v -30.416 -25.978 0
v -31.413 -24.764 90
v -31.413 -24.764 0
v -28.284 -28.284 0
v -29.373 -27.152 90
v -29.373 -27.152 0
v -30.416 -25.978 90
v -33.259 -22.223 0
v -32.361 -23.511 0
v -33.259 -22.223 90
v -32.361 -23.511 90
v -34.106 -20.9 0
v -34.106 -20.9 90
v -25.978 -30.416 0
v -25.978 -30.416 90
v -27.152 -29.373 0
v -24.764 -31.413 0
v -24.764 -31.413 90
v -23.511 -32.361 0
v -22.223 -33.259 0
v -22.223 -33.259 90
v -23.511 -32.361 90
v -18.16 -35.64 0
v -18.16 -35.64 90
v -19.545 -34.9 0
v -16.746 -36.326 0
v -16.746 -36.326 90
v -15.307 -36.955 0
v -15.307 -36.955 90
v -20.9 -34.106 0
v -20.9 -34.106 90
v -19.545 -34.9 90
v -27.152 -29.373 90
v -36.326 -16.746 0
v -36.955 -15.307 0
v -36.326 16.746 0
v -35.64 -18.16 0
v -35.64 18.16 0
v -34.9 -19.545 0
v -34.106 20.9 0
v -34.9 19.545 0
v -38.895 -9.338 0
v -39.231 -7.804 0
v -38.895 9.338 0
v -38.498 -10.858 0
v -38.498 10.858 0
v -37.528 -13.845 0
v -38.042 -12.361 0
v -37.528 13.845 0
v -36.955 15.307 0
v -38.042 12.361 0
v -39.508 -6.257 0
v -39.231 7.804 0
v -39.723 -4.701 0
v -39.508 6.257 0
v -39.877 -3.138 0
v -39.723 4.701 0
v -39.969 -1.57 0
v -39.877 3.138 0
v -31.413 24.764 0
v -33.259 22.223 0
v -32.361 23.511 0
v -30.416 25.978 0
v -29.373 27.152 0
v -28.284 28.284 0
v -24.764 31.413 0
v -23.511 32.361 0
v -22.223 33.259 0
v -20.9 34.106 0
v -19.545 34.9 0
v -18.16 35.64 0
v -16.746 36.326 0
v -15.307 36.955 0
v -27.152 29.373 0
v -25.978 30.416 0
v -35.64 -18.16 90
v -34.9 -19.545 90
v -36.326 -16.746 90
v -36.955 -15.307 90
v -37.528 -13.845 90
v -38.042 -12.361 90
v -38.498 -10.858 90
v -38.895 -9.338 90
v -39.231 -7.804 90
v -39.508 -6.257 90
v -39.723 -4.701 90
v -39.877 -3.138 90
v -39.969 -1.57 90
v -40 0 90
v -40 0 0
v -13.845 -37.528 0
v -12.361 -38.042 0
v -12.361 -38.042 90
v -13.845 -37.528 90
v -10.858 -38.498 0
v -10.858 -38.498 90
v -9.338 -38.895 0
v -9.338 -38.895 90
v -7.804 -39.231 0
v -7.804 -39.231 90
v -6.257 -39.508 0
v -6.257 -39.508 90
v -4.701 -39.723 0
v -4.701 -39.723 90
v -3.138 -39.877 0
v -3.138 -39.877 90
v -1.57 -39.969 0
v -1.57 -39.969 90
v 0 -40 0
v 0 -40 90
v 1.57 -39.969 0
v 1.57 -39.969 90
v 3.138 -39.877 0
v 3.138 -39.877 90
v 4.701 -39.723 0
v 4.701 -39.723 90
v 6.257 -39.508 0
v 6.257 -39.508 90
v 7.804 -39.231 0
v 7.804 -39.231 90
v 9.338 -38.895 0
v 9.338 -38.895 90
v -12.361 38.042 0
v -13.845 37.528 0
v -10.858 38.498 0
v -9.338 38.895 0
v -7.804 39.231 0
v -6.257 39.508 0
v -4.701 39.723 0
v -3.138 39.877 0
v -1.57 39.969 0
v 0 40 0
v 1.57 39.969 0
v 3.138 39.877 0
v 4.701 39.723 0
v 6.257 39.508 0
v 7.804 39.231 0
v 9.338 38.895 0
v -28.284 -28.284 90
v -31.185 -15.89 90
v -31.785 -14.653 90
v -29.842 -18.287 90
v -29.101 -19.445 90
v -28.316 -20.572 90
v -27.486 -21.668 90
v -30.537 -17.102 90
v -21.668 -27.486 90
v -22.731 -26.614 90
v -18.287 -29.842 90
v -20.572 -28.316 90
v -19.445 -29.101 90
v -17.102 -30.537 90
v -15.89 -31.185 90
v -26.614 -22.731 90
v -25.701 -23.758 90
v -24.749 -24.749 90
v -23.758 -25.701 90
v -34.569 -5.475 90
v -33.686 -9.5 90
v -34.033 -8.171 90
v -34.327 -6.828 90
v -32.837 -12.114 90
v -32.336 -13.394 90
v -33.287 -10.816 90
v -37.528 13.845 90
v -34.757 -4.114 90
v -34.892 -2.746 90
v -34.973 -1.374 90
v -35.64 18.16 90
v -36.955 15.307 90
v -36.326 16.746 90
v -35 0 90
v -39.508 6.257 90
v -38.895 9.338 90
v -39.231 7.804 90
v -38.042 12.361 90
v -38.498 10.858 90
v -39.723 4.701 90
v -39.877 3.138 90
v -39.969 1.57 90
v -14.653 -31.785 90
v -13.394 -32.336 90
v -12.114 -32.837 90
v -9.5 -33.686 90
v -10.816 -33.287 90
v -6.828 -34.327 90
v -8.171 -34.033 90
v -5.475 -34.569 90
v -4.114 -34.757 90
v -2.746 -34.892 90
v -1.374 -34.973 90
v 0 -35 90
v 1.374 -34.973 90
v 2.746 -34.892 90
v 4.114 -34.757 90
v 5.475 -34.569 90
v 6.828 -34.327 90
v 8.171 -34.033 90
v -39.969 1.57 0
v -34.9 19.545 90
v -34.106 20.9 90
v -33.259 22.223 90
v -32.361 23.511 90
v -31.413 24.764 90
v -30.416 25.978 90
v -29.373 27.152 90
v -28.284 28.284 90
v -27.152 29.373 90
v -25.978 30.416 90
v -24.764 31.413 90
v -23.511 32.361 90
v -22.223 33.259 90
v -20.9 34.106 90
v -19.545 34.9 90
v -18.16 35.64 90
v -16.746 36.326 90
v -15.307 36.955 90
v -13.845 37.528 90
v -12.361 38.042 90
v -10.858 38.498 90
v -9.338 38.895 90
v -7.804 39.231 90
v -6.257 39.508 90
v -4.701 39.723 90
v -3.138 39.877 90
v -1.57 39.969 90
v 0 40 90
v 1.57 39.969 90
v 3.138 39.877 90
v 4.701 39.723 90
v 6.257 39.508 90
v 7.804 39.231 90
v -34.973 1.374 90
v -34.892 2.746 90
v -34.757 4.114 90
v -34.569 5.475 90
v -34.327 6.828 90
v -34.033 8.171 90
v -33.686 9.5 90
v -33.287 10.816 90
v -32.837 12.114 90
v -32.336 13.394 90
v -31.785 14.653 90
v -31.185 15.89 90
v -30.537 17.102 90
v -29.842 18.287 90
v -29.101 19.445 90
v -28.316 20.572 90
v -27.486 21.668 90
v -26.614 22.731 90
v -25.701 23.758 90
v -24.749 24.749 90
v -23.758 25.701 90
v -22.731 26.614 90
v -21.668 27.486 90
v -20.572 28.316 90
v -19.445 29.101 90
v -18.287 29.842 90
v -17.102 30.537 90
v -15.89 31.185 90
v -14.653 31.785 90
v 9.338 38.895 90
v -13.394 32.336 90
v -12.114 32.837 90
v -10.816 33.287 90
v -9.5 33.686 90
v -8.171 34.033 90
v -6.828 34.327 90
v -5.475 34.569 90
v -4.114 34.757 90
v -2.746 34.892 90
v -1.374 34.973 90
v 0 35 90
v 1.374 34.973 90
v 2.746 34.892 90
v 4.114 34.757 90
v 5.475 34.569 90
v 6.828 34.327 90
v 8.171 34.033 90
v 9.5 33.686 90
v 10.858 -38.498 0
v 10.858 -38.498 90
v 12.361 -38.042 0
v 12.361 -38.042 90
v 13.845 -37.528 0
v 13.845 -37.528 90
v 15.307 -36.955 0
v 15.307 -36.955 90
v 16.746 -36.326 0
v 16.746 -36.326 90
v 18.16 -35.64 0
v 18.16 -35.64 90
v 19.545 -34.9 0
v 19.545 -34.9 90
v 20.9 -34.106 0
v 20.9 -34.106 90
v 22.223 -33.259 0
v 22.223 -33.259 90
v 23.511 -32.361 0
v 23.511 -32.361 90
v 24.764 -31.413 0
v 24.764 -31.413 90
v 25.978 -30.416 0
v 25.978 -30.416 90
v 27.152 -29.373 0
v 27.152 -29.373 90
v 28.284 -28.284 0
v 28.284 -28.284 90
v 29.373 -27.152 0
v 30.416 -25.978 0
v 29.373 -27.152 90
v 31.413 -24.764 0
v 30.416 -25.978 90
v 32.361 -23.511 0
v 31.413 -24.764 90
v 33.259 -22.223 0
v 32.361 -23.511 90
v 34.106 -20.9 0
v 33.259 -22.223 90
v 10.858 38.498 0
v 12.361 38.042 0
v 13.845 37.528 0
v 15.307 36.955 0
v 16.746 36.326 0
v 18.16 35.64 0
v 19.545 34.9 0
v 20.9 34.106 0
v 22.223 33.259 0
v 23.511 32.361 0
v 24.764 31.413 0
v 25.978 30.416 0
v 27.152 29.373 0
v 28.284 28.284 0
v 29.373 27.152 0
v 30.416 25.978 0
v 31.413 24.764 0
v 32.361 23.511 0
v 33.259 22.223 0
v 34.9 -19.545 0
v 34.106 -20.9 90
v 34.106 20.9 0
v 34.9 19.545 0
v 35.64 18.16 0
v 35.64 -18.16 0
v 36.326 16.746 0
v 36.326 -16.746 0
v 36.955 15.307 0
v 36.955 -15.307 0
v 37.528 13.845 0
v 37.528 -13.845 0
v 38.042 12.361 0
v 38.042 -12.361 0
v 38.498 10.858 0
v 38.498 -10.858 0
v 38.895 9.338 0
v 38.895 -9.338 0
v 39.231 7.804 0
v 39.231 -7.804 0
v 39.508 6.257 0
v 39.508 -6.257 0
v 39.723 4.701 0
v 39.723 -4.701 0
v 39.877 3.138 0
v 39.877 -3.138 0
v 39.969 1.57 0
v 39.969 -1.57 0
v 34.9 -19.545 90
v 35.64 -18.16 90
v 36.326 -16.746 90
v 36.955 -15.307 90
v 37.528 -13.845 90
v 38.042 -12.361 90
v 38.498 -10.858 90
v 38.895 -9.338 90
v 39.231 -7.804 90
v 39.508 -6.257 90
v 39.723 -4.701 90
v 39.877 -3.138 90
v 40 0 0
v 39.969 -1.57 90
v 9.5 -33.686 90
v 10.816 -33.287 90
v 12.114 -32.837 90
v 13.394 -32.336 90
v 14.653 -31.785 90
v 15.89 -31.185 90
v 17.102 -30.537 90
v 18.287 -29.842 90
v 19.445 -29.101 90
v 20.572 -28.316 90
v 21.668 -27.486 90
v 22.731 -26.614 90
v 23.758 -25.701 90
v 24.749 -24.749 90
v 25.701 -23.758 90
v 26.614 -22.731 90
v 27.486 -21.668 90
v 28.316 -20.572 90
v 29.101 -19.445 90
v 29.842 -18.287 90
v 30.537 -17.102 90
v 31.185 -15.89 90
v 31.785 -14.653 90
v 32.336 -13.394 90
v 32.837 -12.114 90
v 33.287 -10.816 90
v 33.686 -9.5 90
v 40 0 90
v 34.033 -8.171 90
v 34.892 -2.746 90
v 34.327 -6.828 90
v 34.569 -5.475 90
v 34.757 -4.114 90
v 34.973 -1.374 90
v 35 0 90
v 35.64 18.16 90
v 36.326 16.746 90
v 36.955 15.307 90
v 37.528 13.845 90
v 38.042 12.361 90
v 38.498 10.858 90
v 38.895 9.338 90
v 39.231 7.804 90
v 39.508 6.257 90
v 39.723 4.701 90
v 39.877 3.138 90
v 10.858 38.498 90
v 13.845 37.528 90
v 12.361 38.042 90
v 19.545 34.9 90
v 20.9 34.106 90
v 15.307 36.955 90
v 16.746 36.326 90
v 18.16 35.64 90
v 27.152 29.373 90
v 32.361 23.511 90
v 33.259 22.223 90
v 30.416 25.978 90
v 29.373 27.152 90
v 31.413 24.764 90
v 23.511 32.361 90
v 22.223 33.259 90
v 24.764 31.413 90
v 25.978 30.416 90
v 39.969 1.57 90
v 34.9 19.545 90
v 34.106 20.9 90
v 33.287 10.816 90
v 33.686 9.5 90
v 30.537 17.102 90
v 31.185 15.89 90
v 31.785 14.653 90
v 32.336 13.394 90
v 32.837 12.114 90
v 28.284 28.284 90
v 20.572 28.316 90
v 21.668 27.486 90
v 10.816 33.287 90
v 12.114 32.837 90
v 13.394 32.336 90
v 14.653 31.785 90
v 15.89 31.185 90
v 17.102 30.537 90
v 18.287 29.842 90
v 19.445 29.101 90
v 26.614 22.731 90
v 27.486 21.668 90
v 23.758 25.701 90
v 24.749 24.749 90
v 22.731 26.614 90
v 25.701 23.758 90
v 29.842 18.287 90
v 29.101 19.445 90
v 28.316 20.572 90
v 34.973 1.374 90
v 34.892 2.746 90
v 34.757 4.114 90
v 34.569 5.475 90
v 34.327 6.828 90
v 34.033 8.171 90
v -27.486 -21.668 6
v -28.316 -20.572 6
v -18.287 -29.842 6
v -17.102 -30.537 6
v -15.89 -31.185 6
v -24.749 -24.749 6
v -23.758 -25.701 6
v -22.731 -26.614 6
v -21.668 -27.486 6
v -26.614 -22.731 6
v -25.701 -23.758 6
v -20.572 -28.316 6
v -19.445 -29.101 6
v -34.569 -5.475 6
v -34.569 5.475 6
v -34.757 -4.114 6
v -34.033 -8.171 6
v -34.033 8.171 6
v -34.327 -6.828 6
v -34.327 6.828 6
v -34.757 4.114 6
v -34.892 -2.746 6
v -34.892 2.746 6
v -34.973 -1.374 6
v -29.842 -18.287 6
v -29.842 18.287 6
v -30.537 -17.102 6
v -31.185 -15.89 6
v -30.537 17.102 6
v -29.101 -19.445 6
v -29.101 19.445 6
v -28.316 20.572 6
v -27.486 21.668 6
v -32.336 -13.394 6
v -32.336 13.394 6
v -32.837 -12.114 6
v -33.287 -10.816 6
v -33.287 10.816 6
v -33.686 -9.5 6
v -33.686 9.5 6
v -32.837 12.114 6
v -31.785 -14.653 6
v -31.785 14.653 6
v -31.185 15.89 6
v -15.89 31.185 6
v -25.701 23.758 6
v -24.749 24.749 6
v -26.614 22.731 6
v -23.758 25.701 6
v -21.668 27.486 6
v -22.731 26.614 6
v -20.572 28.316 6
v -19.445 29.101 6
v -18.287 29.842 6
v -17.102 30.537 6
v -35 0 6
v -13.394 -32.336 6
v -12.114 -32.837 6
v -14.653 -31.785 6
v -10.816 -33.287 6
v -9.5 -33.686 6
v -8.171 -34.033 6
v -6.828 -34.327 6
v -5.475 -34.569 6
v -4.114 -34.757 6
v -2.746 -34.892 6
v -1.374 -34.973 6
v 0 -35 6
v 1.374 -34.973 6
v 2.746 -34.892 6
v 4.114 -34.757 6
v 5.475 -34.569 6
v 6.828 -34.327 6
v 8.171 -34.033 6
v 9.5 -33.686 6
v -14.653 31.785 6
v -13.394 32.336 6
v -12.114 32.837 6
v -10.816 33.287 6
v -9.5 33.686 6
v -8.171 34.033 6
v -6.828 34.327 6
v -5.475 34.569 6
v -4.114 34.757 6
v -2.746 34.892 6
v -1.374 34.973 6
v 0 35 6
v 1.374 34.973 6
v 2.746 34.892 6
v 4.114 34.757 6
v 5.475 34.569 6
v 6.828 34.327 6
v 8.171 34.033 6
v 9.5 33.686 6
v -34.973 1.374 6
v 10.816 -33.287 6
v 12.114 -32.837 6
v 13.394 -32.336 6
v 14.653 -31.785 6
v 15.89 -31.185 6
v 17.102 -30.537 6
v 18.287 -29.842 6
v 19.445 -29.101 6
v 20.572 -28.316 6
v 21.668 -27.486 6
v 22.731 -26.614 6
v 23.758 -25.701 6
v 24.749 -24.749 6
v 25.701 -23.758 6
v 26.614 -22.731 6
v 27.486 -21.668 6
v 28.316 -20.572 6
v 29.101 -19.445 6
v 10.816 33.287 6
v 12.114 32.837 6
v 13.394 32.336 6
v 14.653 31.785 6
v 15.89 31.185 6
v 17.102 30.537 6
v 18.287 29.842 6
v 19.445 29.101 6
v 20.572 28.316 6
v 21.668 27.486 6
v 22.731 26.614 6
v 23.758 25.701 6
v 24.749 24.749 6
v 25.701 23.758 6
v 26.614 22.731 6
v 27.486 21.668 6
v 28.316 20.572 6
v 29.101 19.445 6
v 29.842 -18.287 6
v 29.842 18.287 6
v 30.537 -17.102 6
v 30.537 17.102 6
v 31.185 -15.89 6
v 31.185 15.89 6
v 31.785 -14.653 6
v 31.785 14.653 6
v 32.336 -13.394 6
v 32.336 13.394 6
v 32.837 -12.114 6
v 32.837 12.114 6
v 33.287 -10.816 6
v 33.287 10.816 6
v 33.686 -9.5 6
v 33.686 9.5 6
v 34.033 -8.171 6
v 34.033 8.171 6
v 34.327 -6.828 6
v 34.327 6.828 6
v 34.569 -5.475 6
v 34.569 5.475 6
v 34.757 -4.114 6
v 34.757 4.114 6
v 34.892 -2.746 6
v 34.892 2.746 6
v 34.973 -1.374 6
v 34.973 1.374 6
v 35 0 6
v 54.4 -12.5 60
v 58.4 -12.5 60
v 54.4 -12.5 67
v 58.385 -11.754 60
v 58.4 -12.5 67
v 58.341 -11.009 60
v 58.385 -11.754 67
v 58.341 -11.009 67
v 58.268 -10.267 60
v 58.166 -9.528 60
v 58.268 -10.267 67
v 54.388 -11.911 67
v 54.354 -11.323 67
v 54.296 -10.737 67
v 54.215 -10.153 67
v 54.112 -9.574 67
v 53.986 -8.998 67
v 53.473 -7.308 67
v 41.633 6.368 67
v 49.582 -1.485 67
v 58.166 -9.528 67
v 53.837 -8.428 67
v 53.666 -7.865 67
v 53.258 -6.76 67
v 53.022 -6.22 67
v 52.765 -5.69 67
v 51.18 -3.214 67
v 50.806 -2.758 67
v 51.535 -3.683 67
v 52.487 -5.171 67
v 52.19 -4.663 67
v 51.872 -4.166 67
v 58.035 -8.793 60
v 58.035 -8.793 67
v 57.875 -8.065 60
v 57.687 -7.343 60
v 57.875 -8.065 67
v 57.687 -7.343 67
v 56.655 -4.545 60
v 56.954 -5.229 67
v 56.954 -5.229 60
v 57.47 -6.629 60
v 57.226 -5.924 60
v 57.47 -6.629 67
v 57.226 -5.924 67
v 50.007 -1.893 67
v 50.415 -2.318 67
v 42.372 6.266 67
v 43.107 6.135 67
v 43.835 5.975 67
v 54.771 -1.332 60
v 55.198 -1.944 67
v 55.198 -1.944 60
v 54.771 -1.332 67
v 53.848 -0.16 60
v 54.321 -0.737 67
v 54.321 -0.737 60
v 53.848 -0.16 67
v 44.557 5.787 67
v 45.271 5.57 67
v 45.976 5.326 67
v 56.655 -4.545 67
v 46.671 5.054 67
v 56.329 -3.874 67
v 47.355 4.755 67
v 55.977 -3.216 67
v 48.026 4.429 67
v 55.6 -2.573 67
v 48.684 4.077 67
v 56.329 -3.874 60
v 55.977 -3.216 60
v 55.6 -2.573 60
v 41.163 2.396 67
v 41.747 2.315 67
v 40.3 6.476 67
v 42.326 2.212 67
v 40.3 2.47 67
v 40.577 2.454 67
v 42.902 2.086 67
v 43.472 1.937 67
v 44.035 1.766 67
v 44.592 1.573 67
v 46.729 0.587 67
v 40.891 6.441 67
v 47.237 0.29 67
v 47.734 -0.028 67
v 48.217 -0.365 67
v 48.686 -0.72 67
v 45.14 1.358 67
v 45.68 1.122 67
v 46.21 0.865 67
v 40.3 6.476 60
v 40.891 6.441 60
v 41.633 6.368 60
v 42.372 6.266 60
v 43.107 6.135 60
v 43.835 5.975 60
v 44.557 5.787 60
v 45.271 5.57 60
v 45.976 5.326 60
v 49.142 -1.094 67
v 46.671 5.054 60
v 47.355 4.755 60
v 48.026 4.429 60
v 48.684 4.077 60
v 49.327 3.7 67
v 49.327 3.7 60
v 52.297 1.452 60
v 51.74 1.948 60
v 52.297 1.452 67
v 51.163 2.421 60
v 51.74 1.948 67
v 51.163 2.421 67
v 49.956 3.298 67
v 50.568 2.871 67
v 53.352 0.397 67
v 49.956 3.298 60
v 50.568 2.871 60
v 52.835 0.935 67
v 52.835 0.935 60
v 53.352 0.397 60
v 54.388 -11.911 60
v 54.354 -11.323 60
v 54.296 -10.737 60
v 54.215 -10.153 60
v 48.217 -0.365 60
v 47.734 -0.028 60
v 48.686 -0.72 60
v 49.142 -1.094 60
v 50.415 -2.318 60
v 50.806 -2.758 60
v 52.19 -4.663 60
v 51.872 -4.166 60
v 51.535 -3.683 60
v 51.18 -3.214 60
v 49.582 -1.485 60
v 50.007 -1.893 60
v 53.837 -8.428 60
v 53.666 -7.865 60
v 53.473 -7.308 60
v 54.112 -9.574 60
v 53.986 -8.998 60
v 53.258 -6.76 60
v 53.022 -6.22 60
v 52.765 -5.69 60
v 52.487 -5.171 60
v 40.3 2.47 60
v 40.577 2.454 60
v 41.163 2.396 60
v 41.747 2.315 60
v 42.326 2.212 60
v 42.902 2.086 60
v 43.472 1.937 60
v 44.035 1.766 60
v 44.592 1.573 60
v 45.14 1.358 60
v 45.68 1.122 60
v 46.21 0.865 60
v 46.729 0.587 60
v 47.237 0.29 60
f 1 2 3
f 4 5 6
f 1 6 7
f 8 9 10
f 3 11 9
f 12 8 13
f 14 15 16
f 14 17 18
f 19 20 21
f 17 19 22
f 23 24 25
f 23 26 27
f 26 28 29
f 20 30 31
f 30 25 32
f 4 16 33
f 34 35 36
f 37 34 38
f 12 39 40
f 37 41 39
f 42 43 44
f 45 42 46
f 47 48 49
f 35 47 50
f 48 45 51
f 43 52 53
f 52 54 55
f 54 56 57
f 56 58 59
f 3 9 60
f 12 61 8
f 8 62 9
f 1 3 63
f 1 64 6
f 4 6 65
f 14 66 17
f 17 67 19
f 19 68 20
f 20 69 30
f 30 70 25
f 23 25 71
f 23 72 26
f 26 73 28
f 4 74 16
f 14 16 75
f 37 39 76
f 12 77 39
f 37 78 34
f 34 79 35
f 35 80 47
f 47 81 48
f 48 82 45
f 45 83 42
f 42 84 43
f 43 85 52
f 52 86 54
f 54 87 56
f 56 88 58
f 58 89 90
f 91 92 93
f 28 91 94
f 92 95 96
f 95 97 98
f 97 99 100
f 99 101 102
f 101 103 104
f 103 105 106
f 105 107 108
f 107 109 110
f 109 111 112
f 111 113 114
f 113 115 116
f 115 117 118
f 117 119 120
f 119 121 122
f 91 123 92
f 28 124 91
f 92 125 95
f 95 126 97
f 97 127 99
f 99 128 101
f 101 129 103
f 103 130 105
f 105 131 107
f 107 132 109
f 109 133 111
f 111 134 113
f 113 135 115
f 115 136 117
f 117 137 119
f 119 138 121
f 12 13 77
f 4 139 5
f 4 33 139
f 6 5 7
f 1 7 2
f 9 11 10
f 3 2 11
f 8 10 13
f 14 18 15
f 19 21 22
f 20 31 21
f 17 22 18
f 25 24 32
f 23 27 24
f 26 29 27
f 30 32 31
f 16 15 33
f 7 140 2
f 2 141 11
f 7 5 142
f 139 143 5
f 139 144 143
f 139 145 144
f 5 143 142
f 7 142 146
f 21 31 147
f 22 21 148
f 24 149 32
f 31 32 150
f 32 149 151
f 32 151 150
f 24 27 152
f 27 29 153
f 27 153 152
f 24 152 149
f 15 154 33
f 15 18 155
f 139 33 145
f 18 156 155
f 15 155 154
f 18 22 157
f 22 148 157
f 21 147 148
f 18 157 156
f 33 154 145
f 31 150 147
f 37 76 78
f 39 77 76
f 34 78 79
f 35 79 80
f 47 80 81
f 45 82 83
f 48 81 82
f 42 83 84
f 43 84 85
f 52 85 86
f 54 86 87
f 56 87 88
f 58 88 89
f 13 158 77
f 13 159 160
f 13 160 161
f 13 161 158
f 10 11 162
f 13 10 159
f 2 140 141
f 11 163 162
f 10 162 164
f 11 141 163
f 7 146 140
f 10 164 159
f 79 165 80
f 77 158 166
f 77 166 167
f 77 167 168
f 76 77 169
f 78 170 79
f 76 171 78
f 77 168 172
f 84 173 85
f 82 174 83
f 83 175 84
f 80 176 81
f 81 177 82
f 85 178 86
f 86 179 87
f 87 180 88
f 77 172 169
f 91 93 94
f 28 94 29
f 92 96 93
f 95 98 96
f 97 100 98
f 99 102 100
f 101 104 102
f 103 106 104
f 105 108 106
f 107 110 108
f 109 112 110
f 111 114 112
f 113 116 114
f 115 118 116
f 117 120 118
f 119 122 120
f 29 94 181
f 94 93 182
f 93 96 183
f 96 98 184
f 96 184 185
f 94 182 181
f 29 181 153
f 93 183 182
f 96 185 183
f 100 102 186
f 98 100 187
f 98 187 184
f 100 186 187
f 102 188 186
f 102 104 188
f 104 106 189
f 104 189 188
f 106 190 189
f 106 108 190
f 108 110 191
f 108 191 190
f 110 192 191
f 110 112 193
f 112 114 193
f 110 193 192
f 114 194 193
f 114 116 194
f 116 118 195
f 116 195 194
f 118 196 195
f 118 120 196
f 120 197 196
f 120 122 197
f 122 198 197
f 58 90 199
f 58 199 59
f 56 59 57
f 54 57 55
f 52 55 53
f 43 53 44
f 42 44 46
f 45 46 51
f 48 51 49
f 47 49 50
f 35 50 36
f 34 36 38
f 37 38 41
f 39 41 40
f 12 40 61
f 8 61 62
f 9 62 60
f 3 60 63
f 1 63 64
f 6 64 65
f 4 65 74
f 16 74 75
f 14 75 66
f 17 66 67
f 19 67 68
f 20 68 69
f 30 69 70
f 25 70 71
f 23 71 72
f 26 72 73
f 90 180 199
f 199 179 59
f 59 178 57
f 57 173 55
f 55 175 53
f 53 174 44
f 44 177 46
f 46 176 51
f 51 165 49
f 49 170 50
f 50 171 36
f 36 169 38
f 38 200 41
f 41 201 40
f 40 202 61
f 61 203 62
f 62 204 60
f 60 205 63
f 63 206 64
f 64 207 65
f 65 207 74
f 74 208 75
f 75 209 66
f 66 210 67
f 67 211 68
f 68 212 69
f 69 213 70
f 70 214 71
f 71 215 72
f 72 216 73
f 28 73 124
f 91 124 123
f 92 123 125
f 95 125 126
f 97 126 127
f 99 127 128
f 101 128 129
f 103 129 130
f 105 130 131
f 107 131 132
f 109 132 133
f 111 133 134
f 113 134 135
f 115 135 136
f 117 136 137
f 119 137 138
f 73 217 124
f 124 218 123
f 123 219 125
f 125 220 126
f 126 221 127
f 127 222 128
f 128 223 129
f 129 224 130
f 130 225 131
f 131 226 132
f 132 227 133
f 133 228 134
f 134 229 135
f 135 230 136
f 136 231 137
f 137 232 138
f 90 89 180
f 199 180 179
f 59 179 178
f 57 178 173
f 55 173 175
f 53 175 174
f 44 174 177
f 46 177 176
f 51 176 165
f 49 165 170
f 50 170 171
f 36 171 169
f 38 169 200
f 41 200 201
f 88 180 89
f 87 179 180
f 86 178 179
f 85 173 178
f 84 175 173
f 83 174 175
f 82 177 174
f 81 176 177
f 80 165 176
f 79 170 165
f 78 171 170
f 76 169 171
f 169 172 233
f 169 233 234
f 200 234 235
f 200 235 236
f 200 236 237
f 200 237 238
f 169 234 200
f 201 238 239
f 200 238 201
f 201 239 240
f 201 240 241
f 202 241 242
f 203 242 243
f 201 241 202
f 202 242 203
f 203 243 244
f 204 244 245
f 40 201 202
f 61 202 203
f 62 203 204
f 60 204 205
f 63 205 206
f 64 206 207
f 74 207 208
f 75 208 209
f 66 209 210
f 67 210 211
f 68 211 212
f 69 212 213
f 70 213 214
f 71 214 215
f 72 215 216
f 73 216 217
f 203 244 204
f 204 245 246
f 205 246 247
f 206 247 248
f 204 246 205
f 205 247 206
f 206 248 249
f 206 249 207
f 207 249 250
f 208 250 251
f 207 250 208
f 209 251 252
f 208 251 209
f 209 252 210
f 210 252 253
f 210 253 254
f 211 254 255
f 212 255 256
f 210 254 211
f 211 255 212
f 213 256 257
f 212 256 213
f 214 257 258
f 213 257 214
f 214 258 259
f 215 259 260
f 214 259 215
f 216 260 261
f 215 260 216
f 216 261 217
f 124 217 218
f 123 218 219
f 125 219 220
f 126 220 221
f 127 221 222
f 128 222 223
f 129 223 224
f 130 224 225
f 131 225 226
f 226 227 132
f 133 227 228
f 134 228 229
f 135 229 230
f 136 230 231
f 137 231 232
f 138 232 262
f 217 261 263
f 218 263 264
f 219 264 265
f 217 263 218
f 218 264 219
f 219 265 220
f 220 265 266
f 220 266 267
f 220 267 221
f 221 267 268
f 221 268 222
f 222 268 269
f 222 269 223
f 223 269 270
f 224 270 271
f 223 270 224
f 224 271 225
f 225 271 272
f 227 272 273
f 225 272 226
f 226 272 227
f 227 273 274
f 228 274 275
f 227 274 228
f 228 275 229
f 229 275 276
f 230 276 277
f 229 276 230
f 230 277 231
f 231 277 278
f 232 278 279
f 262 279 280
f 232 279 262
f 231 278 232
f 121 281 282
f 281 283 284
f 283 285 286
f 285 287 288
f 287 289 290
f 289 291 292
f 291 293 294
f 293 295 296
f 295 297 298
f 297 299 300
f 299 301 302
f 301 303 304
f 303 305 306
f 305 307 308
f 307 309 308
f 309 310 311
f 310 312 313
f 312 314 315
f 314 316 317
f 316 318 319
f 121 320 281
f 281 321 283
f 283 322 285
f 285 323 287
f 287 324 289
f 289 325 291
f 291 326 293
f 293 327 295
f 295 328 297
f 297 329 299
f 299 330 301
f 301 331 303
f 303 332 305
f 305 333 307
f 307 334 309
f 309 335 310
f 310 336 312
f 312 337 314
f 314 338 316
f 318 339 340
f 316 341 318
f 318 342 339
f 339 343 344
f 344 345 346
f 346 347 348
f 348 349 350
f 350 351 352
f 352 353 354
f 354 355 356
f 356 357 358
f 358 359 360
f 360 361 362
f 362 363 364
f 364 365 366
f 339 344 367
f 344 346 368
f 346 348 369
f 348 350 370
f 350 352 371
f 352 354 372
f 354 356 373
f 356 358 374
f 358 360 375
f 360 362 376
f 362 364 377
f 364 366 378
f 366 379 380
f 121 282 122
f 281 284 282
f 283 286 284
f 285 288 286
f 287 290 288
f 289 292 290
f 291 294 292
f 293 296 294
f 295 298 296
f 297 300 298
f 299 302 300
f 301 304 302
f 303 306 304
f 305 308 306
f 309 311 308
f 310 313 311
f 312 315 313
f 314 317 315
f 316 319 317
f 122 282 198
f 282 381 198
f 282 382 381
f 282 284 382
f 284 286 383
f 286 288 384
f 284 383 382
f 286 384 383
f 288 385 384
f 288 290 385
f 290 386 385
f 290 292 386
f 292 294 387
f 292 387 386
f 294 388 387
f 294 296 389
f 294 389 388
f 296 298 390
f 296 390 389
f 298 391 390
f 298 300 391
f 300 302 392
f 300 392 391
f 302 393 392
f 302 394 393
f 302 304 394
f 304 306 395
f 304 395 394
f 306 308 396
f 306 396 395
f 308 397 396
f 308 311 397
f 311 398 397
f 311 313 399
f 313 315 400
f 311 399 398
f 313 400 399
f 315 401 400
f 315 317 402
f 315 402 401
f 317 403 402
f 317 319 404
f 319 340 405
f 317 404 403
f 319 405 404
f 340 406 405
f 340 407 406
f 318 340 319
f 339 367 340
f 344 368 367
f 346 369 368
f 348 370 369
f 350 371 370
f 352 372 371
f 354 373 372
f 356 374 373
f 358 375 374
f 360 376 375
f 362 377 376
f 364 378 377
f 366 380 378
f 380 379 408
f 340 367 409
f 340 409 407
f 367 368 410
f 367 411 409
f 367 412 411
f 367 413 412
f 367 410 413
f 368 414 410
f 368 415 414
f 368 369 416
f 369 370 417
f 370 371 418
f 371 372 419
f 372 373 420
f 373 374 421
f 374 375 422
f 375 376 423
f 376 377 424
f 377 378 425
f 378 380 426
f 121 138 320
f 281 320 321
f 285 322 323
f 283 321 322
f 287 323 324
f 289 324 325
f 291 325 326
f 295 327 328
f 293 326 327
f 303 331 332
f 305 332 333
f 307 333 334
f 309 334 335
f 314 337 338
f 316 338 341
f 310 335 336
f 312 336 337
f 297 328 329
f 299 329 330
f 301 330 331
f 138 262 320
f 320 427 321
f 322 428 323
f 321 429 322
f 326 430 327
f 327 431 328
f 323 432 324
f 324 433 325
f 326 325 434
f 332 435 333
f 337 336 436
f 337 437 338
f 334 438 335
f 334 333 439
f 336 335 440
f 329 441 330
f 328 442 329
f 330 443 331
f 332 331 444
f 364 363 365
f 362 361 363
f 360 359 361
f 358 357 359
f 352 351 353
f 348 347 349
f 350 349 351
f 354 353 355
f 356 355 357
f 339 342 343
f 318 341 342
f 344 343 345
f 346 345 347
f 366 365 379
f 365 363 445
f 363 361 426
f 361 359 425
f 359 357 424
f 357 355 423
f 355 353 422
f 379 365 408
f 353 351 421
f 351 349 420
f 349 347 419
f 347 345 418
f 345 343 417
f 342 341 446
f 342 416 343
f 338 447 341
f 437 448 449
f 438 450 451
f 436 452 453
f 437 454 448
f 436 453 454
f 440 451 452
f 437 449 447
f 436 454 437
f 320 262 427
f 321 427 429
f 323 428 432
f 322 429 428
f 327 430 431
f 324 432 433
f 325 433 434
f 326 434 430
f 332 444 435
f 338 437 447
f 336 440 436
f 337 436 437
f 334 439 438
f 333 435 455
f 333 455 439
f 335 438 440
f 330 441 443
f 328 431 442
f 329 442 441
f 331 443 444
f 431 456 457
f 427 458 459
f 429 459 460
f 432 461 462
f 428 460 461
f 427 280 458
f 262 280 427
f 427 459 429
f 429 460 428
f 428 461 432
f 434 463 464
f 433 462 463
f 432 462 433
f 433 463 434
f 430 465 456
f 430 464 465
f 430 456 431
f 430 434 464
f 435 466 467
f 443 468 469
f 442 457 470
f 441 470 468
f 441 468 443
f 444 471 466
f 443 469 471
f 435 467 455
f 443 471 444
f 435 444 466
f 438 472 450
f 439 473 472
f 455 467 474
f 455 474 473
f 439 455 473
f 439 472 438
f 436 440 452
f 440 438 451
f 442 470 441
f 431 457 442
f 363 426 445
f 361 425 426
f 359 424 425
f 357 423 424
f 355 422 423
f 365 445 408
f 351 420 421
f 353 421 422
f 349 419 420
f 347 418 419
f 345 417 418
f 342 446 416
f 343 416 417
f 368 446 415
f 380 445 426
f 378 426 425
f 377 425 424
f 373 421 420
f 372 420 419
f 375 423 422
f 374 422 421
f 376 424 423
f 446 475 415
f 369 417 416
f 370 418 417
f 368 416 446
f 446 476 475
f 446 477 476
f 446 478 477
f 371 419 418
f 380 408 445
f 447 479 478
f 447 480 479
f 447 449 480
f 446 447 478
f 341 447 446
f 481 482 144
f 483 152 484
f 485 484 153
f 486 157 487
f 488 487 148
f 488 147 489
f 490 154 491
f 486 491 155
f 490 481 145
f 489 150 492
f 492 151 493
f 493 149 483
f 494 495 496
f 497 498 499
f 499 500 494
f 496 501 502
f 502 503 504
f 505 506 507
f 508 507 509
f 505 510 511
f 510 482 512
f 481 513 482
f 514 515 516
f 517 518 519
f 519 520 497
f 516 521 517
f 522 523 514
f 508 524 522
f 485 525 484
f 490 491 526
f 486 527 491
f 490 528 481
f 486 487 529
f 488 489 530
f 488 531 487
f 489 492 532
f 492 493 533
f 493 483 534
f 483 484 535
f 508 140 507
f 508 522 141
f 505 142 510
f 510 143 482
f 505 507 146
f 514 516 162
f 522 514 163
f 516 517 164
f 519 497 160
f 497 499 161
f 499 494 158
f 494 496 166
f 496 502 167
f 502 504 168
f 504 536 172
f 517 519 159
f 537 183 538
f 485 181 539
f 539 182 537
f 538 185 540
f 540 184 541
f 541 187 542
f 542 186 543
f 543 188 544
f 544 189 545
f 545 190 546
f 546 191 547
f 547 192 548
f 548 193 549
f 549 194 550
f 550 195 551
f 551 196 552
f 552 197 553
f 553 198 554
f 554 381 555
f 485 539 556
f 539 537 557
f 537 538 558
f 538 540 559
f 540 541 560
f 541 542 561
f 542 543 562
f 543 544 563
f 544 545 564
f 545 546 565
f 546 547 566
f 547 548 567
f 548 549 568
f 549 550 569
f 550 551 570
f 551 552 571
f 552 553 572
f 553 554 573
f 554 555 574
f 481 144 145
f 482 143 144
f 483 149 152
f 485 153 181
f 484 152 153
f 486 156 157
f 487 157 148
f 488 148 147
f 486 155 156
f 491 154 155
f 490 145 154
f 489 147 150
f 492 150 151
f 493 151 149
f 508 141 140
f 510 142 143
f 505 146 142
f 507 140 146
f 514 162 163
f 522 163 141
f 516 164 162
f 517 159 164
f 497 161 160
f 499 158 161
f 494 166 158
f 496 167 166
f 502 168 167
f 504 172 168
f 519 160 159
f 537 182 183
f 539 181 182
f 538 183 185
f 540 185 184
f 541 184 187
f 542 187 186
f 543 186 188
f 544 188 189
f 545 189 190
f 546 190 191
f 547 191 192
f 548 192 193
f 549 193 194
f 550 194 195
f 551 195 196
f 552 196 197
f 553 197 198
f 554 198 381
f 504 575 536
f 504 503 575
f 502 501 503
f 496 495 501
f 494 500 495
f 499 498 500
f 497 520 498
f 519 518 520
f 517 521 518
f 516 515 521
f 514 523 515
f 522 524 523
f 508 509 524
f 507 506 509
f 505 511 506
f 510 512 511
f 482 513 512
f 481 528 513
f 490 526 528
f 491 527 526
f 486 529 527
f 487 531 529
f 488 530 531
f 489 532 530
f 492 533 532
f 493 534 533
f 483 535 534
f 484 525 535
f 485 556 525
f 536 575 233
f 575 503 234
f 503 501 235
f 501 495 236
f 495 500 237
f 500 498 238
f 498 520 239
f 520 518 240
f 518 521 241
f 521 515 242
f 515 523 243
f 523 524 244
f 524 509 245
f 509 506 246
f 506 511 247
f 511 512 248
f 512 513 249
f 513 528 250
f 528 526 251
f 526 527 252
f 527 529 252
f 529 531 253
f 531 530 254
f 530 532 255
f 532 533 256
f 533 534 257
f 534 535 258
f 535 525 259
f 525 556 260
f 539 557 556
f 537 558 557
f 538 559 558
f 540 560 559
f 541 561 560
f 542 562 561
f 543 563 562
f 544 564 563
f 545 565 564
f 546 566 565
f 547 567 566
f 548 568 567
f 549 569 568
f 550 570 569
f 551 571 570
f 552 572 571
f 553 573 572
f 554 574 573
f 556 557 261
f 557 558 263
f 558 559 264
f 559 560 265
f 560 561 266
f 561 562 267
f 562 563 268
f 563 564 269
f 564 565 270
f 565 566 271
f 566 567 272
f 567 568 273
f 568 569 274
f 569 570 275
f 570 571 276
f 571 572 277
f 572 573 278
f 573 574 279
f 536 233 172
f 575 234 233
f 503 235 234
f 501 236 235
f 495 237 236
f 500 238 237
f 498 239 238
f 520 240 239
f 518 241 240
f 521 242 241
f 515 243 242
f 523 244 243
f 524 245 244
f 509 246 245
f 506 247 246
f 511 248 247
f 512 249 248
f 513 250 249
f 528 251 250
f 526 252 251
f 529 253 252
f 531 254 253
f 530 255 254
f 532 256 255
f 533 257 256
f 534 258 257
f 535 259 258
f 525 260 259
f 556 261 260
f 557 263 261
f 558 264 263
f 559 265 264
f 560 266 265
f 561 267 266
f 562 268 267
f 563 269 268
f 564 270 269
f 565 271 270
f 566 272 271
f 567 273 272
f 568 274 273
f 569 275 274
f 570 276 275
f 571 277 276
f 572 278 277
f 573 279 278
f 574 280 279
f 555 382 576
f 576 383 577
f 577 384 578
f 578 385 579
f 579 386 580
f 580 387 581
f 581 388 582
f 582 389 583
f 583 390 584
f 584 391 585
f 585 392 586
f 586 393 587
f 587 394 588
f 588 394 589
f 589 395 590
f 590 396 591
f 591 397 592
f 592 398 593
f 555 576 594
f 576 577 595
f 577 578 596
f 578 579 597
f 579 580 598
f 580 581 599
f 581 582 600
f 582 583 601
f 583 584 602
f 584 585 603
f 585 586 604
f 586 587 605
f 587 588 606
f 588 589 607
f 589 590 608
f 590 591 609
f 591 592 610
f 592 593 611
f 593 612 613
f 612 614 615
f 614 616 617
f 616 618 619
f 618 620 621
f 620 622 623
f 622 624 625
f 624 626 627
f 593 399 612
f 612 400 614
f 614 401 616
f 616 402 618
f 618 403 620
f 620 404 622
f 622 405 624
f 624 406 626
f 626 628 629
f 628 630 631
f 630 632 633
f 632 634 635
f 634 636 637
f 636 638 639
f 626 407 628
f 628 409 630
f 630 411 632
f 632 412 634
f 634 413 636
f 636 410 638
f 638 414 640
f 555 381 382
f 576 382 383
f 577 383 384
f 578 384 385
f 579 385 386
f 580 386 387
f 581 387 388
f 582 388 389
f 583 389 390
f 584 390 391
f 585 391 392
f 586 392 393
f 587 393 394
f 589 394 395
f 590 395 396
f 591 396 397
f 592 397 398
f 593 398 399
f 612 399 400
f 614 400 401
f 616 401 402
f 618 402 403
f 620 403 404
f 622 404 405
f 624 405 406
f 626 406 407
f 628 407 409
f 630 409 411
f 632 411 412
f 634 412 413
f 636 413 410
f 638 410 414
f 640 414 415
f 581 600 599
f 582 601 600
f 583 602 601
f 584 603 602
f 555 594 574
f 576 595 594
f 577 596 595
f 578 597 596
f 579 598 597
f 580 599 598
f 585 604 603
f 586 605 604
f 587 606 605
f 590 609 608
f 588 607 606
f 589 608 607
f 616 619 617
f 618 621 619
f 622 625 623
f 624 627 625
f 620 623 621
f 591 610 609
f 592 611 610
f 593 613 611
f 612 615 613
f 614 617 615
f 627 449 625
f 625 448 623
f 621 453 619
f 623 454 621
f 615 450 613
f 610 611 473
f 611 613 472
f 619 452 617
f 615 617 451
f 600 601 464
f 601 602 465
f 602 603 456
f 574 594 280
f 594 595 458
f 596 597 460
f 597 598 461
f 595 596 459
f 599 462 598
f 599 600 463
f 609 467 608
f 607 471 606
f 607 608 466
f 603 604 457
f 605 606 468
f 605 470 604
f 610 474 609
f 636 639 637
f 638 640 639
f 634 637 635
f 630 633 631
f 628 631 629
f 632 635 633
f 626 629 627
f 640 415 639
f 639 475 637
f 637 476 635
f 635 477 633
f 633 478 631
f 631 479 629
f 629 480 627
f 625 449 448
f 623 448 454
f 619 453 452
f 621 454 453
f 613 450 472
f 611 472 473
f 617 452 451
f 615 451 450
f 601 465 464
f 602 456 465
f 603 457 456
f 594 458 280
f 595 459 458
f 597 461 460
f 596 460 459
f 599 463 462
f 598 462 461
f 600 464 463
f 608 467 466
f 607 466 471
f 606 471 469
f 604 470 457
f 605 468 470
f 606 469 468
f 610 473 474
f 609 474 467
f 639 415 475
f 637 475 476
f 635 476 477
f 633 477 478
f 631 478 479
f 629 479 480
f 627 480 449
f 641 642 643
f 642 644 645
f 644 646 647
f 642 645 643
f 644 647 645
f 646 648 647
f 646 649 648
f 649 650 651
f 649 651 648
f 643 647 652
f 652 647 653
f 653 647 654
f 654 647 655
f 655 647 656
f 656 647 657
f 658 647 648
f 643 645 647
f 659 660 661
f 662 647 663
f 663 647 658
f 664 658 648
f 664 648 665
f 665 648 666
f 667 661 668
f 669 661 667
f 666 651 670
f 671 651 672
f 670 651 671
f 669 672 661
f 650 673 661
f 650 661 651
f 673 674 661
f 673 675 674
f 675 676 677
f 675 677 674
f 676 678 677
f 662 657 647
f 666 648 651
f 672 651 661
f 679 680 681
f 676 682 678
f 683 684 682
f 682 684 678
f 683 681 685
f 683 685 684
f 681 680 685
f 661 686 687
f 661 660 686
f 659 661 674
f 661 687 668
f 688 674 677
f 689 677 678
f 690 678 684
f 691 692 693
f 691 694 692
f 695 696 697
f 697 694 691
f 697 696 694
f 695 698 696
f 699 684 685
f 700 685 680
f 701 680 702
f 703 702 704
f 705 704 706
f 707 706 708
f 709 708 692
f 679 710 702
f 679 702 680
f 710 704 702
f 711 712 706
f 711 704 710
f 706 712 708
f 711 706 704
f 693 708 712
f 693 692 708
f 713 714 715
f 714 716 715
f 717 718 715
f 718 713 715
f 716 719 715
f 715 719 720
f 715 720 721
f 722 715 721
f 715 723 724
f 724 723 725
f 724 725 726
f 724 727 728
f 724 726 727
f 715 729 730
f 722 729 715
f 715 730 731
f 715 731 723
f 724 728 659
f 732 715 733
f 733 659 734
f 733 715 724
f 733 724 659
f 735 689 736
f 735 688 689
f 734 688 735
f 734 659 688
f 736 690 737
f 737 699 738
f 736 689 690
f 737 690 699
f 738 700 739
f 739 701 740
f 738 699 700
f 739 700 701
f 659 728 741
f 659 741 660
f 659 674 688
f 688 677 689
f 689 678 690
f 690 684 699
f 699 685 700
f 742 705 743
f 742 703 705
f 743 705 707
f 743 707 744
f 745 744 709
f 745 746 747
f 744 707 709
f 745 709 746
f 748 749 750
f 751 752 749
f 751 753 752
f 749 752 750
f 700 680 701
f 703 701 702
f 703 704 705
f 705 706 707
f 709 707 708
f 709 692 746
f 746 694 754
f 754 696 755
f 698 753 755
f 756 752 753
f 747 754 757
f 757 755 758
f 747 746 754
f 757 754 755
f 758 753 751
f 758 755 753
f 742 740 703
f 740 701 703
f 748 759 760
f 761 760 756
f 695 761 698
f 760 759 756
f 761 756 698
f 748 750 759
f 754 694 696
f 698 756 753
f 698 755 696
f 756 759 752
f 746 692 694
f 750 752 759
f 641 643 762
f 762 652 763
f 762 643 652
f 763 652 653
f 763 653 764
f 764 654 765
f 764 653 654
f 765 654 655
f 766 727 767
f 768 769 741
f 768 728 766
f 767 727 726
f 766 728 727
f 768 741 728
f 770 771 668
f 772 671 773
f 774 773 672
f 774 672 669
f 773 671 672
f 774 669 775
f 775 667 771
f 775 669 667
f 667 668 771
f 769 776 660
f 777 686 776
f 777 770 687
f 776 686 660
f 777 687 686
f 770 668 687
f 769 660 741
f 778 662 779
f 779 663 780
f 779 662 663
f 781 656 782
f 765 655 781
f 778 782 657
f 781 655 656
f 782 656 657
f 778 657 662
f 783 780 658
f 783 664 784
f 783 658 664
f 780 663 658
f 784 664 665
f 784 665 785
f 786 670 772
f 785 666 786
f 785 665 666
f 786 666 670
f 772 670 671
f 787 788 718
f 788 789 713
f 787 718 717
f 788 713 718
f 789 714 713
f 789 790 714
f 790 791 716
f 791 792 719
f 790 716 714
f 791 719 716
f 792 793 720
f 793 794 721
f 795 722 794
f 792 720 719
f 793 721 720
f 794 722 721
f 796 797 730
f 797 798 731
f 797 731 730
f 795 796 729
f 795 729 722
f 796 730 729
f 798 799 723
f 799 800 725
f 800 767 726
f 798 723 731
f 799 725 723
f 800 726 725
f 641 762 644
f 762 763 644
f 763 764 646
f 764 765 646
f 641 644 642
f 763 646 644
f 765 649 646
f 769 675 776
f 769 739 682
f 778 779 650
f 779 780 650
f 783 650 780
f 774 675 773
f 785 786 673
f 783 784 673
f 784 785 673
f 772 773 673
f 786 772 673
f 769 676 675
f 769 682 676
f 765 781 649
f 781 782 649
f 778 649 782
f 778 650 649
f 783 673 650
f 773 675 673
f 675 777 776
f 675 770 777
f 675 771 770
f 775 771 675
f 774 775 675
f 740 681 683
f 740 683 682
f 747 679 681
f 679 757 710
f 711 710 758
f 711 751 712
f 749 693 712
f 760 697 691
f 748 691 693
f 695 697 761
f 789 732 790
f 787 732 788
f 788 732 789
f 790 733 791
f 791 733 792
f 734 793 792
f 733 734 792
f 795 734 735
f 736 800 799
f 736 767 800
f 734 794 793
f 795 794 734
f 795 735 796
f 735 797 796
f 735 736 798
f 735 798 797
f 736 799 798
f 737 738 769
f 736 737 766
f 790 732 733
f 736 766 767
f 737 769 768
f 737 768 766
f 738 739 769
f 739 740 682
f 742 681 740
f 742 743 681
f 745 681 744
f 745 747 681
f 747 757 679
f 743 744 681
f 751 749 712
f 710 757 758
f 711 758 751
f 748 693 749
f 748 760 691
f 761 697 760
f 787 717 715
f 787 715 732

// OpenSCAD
// Mug +X-side D-handle (revised to match prompt)

// ---- Quality ----
$fn = 160;

// ---- Mug parameters ----
outer_d   = 80;           // outer diameter
inner_d   = 70;           // inner diameter
wall      = (outer_d-inner_d)/2; // =5
h_mug     = 90;           // mug height
t_bottom  = 6;           // bottom thickness

// ---- Handle parameters ----
handle_void_w = 25;      // width of inner void (Y direction)
handle_void_h = 30;      // height of inner void (Z direction)
handle_center_z = h_mug/2;

// Handle should connect to +X side ONLY.
// We'll attach it so the handle extends only from x = mug outer radius to x = mug outer radius + depth,
// and we also clip it to x>=mug_outer_r so it doesn't appear on -X side.
handle_depth = 22;       // extrusion depth along +X
handle_wall  = 4;        // thickness of handle shell in the D cross-section

// Avoid tiny non-manifold overlaps: ensure a small overlap when unioning/subtracting.
eps = 0.6;

// ---- Derived mug radii ----
mug_outer_r = outer_d/2; // 40
mug_inner_r = inner_d/2; // 35

// ---- 2D semicircle with flat at y=0, bulge toward +Y ----
module semicircle_with_flat(r=10) {
  // returns polygon in (Y,Z) plane with flat edge at Y=0
  pts = [
    for (i=[0:80])
      let(
        a = -90 + i*(180/80),
        y = r*cos(a),     // 0..r..0
        z = r*sin(a)      // -r..+r
      )
      [y, z]
  ];
  // close with flat edge
  polygon(concat(pts, [[0, -r],[0, r]]));
}

// ---- D-handle as hollow D-shell extruded in +X ----
// Cross-section in YZ: outer semicircle (bulge +Y) with flat at Y=0,
// inner semicircle reduced by handle_wall, also flat at Y=0.
// Then we clip to requested inner void rectangle by subtracting a box.
module handle_d_shell() {
  // Outer D "radius" in YZ. Inner void width at flat-to-flat should be handle_void_w.
  // Because both outer/inner are clipped from y=0..clip_y_max, this controls the void width.
  // Choose outer radius so that inner radius - clipping gives adequate wall.
  // We'll directly size by clip bounds and inner radius.
  //
  // For better match: let inner semicircle radius be handle_void_h/2,
  // and then outer semicircle radius = inner + handle_wall.
  r_inner = handle_void_h/2;
  r_outer = r_inner + handle_wall;

  // Inner void rectangle is width handle_void_w (Y) and height handle_void_h (Z).
  // We will subtract this box after forming D-shell, ensuring exact dimensions.
  clip_y_max = handle_void_w;

  // Z placement centered at handle_center_z.
  z0 = handle_center_z - handle_void_h/2;

  // Build shell at local origin where:
  // - flat face is at Y=0
  // - Z is centered at 0
  // Later we translate to mug coordinates.
  difference() {
    // Outer D shell
    translate([mug_outer_r - eps, 0, handle_center_z])
      linear_extrude(height=handle_depth, center=false)
        intersection() {
          semicircle_with_flat(r=r_outer);
          // Clip in Y to control overall "grip" width of the D
          square([clip_y_max, 2*r_outer + 1], center=false);
        }

    // Inner void: subtract smaller D-shape
    translate([mug_outer_r - eps, 0, handle_center_z])
      linear_extrude(height=handle_depth + 2*eps, center=false)
        intersection() {
          semicircle_with_flat(r=r_inner);
          square([clip_y_max, 2*r_inner + 1], center=false);
        }

    // Ensure void height exactly handle_void_h by cutting with a box
    translate([mug_outer_r - eps - 0.2, 0, z0])
      cube([handle_depth + 2*eps + 0.4, clip_y_max, handle_void_h], center=false);

    // Extra cut: ensure no negative-Y void extension and also keep manifold sane
    // (flat at Y=0 means void shouldn't go to negative Y)
  }
}

// Ensure handle ONLY appears on +X side:
// 1) Position handle so its "inner base" is on mug's outer radius.
// 2) Clip by x >= mug_outer_r so it cannot protrude to -X.
module handle_with_x_clip() {
  difference() {
    handle_d_shell();
    // Clip away any part with x < mug_outer_r
    translate([mug_outer_r/2, 0, handle_center_z])
      cube([mug_outer_r + eps, 200, 200], center=true);
    // (This cube centered at mug_outer_r/2 will cover x from 0..mug_outer_r+eps,
    // but since we need to remove x < mug_outer_r, we instead rely on
    // subtracting a large block that covers the -X side.)
  }
}

// ---- Mug body ----
module mug_body() {
  difference() {
    cylinder(d=outer_d, h=h_mug, center=false);
    translate([0,0,t_bottom])
      cylinder(d=inner_d, h=h_mug - t_bottom, center=false);
  }
}

// ---- Final ----
union() {
  mug_body();

  // Place handle at +X side:
  // In this model, the handle's flat face is at Y=0 (i.e., centered on +Y side).
  // To center the handle symmetrically around the Y axis, shift it by -handle_void_w/2 in Y
  // is *not* requested by prompt; prompt says inner space width 25 (likely along Y),
  // but doesn't require centering around Y=0. However typical handle should be centered.
  //
  // We'll center it: void should span Y=[-handle_void_w/2, +handle_void_w/2].
  // Our D currently spans Y in [0, handle_void_w] due to flat at Y=0.
  // So shift by -handle_void_w/2 to center it around Y=0.
  translate([0, -handle_void_w/2, 0]) {
    // Clip to +X only using an explicit intersection with x>=mug_outer_r
    intersection() {
      handle_with_x_clip();

      // keep only x>=mug_outer_r
      translate([mug_outer_r + (handle_depth/2), 0, handle_center_z])
        cube([handle_depth + mug_outer_r + 50, 200, h_mug + 100], center=true);
    }
  }
}
